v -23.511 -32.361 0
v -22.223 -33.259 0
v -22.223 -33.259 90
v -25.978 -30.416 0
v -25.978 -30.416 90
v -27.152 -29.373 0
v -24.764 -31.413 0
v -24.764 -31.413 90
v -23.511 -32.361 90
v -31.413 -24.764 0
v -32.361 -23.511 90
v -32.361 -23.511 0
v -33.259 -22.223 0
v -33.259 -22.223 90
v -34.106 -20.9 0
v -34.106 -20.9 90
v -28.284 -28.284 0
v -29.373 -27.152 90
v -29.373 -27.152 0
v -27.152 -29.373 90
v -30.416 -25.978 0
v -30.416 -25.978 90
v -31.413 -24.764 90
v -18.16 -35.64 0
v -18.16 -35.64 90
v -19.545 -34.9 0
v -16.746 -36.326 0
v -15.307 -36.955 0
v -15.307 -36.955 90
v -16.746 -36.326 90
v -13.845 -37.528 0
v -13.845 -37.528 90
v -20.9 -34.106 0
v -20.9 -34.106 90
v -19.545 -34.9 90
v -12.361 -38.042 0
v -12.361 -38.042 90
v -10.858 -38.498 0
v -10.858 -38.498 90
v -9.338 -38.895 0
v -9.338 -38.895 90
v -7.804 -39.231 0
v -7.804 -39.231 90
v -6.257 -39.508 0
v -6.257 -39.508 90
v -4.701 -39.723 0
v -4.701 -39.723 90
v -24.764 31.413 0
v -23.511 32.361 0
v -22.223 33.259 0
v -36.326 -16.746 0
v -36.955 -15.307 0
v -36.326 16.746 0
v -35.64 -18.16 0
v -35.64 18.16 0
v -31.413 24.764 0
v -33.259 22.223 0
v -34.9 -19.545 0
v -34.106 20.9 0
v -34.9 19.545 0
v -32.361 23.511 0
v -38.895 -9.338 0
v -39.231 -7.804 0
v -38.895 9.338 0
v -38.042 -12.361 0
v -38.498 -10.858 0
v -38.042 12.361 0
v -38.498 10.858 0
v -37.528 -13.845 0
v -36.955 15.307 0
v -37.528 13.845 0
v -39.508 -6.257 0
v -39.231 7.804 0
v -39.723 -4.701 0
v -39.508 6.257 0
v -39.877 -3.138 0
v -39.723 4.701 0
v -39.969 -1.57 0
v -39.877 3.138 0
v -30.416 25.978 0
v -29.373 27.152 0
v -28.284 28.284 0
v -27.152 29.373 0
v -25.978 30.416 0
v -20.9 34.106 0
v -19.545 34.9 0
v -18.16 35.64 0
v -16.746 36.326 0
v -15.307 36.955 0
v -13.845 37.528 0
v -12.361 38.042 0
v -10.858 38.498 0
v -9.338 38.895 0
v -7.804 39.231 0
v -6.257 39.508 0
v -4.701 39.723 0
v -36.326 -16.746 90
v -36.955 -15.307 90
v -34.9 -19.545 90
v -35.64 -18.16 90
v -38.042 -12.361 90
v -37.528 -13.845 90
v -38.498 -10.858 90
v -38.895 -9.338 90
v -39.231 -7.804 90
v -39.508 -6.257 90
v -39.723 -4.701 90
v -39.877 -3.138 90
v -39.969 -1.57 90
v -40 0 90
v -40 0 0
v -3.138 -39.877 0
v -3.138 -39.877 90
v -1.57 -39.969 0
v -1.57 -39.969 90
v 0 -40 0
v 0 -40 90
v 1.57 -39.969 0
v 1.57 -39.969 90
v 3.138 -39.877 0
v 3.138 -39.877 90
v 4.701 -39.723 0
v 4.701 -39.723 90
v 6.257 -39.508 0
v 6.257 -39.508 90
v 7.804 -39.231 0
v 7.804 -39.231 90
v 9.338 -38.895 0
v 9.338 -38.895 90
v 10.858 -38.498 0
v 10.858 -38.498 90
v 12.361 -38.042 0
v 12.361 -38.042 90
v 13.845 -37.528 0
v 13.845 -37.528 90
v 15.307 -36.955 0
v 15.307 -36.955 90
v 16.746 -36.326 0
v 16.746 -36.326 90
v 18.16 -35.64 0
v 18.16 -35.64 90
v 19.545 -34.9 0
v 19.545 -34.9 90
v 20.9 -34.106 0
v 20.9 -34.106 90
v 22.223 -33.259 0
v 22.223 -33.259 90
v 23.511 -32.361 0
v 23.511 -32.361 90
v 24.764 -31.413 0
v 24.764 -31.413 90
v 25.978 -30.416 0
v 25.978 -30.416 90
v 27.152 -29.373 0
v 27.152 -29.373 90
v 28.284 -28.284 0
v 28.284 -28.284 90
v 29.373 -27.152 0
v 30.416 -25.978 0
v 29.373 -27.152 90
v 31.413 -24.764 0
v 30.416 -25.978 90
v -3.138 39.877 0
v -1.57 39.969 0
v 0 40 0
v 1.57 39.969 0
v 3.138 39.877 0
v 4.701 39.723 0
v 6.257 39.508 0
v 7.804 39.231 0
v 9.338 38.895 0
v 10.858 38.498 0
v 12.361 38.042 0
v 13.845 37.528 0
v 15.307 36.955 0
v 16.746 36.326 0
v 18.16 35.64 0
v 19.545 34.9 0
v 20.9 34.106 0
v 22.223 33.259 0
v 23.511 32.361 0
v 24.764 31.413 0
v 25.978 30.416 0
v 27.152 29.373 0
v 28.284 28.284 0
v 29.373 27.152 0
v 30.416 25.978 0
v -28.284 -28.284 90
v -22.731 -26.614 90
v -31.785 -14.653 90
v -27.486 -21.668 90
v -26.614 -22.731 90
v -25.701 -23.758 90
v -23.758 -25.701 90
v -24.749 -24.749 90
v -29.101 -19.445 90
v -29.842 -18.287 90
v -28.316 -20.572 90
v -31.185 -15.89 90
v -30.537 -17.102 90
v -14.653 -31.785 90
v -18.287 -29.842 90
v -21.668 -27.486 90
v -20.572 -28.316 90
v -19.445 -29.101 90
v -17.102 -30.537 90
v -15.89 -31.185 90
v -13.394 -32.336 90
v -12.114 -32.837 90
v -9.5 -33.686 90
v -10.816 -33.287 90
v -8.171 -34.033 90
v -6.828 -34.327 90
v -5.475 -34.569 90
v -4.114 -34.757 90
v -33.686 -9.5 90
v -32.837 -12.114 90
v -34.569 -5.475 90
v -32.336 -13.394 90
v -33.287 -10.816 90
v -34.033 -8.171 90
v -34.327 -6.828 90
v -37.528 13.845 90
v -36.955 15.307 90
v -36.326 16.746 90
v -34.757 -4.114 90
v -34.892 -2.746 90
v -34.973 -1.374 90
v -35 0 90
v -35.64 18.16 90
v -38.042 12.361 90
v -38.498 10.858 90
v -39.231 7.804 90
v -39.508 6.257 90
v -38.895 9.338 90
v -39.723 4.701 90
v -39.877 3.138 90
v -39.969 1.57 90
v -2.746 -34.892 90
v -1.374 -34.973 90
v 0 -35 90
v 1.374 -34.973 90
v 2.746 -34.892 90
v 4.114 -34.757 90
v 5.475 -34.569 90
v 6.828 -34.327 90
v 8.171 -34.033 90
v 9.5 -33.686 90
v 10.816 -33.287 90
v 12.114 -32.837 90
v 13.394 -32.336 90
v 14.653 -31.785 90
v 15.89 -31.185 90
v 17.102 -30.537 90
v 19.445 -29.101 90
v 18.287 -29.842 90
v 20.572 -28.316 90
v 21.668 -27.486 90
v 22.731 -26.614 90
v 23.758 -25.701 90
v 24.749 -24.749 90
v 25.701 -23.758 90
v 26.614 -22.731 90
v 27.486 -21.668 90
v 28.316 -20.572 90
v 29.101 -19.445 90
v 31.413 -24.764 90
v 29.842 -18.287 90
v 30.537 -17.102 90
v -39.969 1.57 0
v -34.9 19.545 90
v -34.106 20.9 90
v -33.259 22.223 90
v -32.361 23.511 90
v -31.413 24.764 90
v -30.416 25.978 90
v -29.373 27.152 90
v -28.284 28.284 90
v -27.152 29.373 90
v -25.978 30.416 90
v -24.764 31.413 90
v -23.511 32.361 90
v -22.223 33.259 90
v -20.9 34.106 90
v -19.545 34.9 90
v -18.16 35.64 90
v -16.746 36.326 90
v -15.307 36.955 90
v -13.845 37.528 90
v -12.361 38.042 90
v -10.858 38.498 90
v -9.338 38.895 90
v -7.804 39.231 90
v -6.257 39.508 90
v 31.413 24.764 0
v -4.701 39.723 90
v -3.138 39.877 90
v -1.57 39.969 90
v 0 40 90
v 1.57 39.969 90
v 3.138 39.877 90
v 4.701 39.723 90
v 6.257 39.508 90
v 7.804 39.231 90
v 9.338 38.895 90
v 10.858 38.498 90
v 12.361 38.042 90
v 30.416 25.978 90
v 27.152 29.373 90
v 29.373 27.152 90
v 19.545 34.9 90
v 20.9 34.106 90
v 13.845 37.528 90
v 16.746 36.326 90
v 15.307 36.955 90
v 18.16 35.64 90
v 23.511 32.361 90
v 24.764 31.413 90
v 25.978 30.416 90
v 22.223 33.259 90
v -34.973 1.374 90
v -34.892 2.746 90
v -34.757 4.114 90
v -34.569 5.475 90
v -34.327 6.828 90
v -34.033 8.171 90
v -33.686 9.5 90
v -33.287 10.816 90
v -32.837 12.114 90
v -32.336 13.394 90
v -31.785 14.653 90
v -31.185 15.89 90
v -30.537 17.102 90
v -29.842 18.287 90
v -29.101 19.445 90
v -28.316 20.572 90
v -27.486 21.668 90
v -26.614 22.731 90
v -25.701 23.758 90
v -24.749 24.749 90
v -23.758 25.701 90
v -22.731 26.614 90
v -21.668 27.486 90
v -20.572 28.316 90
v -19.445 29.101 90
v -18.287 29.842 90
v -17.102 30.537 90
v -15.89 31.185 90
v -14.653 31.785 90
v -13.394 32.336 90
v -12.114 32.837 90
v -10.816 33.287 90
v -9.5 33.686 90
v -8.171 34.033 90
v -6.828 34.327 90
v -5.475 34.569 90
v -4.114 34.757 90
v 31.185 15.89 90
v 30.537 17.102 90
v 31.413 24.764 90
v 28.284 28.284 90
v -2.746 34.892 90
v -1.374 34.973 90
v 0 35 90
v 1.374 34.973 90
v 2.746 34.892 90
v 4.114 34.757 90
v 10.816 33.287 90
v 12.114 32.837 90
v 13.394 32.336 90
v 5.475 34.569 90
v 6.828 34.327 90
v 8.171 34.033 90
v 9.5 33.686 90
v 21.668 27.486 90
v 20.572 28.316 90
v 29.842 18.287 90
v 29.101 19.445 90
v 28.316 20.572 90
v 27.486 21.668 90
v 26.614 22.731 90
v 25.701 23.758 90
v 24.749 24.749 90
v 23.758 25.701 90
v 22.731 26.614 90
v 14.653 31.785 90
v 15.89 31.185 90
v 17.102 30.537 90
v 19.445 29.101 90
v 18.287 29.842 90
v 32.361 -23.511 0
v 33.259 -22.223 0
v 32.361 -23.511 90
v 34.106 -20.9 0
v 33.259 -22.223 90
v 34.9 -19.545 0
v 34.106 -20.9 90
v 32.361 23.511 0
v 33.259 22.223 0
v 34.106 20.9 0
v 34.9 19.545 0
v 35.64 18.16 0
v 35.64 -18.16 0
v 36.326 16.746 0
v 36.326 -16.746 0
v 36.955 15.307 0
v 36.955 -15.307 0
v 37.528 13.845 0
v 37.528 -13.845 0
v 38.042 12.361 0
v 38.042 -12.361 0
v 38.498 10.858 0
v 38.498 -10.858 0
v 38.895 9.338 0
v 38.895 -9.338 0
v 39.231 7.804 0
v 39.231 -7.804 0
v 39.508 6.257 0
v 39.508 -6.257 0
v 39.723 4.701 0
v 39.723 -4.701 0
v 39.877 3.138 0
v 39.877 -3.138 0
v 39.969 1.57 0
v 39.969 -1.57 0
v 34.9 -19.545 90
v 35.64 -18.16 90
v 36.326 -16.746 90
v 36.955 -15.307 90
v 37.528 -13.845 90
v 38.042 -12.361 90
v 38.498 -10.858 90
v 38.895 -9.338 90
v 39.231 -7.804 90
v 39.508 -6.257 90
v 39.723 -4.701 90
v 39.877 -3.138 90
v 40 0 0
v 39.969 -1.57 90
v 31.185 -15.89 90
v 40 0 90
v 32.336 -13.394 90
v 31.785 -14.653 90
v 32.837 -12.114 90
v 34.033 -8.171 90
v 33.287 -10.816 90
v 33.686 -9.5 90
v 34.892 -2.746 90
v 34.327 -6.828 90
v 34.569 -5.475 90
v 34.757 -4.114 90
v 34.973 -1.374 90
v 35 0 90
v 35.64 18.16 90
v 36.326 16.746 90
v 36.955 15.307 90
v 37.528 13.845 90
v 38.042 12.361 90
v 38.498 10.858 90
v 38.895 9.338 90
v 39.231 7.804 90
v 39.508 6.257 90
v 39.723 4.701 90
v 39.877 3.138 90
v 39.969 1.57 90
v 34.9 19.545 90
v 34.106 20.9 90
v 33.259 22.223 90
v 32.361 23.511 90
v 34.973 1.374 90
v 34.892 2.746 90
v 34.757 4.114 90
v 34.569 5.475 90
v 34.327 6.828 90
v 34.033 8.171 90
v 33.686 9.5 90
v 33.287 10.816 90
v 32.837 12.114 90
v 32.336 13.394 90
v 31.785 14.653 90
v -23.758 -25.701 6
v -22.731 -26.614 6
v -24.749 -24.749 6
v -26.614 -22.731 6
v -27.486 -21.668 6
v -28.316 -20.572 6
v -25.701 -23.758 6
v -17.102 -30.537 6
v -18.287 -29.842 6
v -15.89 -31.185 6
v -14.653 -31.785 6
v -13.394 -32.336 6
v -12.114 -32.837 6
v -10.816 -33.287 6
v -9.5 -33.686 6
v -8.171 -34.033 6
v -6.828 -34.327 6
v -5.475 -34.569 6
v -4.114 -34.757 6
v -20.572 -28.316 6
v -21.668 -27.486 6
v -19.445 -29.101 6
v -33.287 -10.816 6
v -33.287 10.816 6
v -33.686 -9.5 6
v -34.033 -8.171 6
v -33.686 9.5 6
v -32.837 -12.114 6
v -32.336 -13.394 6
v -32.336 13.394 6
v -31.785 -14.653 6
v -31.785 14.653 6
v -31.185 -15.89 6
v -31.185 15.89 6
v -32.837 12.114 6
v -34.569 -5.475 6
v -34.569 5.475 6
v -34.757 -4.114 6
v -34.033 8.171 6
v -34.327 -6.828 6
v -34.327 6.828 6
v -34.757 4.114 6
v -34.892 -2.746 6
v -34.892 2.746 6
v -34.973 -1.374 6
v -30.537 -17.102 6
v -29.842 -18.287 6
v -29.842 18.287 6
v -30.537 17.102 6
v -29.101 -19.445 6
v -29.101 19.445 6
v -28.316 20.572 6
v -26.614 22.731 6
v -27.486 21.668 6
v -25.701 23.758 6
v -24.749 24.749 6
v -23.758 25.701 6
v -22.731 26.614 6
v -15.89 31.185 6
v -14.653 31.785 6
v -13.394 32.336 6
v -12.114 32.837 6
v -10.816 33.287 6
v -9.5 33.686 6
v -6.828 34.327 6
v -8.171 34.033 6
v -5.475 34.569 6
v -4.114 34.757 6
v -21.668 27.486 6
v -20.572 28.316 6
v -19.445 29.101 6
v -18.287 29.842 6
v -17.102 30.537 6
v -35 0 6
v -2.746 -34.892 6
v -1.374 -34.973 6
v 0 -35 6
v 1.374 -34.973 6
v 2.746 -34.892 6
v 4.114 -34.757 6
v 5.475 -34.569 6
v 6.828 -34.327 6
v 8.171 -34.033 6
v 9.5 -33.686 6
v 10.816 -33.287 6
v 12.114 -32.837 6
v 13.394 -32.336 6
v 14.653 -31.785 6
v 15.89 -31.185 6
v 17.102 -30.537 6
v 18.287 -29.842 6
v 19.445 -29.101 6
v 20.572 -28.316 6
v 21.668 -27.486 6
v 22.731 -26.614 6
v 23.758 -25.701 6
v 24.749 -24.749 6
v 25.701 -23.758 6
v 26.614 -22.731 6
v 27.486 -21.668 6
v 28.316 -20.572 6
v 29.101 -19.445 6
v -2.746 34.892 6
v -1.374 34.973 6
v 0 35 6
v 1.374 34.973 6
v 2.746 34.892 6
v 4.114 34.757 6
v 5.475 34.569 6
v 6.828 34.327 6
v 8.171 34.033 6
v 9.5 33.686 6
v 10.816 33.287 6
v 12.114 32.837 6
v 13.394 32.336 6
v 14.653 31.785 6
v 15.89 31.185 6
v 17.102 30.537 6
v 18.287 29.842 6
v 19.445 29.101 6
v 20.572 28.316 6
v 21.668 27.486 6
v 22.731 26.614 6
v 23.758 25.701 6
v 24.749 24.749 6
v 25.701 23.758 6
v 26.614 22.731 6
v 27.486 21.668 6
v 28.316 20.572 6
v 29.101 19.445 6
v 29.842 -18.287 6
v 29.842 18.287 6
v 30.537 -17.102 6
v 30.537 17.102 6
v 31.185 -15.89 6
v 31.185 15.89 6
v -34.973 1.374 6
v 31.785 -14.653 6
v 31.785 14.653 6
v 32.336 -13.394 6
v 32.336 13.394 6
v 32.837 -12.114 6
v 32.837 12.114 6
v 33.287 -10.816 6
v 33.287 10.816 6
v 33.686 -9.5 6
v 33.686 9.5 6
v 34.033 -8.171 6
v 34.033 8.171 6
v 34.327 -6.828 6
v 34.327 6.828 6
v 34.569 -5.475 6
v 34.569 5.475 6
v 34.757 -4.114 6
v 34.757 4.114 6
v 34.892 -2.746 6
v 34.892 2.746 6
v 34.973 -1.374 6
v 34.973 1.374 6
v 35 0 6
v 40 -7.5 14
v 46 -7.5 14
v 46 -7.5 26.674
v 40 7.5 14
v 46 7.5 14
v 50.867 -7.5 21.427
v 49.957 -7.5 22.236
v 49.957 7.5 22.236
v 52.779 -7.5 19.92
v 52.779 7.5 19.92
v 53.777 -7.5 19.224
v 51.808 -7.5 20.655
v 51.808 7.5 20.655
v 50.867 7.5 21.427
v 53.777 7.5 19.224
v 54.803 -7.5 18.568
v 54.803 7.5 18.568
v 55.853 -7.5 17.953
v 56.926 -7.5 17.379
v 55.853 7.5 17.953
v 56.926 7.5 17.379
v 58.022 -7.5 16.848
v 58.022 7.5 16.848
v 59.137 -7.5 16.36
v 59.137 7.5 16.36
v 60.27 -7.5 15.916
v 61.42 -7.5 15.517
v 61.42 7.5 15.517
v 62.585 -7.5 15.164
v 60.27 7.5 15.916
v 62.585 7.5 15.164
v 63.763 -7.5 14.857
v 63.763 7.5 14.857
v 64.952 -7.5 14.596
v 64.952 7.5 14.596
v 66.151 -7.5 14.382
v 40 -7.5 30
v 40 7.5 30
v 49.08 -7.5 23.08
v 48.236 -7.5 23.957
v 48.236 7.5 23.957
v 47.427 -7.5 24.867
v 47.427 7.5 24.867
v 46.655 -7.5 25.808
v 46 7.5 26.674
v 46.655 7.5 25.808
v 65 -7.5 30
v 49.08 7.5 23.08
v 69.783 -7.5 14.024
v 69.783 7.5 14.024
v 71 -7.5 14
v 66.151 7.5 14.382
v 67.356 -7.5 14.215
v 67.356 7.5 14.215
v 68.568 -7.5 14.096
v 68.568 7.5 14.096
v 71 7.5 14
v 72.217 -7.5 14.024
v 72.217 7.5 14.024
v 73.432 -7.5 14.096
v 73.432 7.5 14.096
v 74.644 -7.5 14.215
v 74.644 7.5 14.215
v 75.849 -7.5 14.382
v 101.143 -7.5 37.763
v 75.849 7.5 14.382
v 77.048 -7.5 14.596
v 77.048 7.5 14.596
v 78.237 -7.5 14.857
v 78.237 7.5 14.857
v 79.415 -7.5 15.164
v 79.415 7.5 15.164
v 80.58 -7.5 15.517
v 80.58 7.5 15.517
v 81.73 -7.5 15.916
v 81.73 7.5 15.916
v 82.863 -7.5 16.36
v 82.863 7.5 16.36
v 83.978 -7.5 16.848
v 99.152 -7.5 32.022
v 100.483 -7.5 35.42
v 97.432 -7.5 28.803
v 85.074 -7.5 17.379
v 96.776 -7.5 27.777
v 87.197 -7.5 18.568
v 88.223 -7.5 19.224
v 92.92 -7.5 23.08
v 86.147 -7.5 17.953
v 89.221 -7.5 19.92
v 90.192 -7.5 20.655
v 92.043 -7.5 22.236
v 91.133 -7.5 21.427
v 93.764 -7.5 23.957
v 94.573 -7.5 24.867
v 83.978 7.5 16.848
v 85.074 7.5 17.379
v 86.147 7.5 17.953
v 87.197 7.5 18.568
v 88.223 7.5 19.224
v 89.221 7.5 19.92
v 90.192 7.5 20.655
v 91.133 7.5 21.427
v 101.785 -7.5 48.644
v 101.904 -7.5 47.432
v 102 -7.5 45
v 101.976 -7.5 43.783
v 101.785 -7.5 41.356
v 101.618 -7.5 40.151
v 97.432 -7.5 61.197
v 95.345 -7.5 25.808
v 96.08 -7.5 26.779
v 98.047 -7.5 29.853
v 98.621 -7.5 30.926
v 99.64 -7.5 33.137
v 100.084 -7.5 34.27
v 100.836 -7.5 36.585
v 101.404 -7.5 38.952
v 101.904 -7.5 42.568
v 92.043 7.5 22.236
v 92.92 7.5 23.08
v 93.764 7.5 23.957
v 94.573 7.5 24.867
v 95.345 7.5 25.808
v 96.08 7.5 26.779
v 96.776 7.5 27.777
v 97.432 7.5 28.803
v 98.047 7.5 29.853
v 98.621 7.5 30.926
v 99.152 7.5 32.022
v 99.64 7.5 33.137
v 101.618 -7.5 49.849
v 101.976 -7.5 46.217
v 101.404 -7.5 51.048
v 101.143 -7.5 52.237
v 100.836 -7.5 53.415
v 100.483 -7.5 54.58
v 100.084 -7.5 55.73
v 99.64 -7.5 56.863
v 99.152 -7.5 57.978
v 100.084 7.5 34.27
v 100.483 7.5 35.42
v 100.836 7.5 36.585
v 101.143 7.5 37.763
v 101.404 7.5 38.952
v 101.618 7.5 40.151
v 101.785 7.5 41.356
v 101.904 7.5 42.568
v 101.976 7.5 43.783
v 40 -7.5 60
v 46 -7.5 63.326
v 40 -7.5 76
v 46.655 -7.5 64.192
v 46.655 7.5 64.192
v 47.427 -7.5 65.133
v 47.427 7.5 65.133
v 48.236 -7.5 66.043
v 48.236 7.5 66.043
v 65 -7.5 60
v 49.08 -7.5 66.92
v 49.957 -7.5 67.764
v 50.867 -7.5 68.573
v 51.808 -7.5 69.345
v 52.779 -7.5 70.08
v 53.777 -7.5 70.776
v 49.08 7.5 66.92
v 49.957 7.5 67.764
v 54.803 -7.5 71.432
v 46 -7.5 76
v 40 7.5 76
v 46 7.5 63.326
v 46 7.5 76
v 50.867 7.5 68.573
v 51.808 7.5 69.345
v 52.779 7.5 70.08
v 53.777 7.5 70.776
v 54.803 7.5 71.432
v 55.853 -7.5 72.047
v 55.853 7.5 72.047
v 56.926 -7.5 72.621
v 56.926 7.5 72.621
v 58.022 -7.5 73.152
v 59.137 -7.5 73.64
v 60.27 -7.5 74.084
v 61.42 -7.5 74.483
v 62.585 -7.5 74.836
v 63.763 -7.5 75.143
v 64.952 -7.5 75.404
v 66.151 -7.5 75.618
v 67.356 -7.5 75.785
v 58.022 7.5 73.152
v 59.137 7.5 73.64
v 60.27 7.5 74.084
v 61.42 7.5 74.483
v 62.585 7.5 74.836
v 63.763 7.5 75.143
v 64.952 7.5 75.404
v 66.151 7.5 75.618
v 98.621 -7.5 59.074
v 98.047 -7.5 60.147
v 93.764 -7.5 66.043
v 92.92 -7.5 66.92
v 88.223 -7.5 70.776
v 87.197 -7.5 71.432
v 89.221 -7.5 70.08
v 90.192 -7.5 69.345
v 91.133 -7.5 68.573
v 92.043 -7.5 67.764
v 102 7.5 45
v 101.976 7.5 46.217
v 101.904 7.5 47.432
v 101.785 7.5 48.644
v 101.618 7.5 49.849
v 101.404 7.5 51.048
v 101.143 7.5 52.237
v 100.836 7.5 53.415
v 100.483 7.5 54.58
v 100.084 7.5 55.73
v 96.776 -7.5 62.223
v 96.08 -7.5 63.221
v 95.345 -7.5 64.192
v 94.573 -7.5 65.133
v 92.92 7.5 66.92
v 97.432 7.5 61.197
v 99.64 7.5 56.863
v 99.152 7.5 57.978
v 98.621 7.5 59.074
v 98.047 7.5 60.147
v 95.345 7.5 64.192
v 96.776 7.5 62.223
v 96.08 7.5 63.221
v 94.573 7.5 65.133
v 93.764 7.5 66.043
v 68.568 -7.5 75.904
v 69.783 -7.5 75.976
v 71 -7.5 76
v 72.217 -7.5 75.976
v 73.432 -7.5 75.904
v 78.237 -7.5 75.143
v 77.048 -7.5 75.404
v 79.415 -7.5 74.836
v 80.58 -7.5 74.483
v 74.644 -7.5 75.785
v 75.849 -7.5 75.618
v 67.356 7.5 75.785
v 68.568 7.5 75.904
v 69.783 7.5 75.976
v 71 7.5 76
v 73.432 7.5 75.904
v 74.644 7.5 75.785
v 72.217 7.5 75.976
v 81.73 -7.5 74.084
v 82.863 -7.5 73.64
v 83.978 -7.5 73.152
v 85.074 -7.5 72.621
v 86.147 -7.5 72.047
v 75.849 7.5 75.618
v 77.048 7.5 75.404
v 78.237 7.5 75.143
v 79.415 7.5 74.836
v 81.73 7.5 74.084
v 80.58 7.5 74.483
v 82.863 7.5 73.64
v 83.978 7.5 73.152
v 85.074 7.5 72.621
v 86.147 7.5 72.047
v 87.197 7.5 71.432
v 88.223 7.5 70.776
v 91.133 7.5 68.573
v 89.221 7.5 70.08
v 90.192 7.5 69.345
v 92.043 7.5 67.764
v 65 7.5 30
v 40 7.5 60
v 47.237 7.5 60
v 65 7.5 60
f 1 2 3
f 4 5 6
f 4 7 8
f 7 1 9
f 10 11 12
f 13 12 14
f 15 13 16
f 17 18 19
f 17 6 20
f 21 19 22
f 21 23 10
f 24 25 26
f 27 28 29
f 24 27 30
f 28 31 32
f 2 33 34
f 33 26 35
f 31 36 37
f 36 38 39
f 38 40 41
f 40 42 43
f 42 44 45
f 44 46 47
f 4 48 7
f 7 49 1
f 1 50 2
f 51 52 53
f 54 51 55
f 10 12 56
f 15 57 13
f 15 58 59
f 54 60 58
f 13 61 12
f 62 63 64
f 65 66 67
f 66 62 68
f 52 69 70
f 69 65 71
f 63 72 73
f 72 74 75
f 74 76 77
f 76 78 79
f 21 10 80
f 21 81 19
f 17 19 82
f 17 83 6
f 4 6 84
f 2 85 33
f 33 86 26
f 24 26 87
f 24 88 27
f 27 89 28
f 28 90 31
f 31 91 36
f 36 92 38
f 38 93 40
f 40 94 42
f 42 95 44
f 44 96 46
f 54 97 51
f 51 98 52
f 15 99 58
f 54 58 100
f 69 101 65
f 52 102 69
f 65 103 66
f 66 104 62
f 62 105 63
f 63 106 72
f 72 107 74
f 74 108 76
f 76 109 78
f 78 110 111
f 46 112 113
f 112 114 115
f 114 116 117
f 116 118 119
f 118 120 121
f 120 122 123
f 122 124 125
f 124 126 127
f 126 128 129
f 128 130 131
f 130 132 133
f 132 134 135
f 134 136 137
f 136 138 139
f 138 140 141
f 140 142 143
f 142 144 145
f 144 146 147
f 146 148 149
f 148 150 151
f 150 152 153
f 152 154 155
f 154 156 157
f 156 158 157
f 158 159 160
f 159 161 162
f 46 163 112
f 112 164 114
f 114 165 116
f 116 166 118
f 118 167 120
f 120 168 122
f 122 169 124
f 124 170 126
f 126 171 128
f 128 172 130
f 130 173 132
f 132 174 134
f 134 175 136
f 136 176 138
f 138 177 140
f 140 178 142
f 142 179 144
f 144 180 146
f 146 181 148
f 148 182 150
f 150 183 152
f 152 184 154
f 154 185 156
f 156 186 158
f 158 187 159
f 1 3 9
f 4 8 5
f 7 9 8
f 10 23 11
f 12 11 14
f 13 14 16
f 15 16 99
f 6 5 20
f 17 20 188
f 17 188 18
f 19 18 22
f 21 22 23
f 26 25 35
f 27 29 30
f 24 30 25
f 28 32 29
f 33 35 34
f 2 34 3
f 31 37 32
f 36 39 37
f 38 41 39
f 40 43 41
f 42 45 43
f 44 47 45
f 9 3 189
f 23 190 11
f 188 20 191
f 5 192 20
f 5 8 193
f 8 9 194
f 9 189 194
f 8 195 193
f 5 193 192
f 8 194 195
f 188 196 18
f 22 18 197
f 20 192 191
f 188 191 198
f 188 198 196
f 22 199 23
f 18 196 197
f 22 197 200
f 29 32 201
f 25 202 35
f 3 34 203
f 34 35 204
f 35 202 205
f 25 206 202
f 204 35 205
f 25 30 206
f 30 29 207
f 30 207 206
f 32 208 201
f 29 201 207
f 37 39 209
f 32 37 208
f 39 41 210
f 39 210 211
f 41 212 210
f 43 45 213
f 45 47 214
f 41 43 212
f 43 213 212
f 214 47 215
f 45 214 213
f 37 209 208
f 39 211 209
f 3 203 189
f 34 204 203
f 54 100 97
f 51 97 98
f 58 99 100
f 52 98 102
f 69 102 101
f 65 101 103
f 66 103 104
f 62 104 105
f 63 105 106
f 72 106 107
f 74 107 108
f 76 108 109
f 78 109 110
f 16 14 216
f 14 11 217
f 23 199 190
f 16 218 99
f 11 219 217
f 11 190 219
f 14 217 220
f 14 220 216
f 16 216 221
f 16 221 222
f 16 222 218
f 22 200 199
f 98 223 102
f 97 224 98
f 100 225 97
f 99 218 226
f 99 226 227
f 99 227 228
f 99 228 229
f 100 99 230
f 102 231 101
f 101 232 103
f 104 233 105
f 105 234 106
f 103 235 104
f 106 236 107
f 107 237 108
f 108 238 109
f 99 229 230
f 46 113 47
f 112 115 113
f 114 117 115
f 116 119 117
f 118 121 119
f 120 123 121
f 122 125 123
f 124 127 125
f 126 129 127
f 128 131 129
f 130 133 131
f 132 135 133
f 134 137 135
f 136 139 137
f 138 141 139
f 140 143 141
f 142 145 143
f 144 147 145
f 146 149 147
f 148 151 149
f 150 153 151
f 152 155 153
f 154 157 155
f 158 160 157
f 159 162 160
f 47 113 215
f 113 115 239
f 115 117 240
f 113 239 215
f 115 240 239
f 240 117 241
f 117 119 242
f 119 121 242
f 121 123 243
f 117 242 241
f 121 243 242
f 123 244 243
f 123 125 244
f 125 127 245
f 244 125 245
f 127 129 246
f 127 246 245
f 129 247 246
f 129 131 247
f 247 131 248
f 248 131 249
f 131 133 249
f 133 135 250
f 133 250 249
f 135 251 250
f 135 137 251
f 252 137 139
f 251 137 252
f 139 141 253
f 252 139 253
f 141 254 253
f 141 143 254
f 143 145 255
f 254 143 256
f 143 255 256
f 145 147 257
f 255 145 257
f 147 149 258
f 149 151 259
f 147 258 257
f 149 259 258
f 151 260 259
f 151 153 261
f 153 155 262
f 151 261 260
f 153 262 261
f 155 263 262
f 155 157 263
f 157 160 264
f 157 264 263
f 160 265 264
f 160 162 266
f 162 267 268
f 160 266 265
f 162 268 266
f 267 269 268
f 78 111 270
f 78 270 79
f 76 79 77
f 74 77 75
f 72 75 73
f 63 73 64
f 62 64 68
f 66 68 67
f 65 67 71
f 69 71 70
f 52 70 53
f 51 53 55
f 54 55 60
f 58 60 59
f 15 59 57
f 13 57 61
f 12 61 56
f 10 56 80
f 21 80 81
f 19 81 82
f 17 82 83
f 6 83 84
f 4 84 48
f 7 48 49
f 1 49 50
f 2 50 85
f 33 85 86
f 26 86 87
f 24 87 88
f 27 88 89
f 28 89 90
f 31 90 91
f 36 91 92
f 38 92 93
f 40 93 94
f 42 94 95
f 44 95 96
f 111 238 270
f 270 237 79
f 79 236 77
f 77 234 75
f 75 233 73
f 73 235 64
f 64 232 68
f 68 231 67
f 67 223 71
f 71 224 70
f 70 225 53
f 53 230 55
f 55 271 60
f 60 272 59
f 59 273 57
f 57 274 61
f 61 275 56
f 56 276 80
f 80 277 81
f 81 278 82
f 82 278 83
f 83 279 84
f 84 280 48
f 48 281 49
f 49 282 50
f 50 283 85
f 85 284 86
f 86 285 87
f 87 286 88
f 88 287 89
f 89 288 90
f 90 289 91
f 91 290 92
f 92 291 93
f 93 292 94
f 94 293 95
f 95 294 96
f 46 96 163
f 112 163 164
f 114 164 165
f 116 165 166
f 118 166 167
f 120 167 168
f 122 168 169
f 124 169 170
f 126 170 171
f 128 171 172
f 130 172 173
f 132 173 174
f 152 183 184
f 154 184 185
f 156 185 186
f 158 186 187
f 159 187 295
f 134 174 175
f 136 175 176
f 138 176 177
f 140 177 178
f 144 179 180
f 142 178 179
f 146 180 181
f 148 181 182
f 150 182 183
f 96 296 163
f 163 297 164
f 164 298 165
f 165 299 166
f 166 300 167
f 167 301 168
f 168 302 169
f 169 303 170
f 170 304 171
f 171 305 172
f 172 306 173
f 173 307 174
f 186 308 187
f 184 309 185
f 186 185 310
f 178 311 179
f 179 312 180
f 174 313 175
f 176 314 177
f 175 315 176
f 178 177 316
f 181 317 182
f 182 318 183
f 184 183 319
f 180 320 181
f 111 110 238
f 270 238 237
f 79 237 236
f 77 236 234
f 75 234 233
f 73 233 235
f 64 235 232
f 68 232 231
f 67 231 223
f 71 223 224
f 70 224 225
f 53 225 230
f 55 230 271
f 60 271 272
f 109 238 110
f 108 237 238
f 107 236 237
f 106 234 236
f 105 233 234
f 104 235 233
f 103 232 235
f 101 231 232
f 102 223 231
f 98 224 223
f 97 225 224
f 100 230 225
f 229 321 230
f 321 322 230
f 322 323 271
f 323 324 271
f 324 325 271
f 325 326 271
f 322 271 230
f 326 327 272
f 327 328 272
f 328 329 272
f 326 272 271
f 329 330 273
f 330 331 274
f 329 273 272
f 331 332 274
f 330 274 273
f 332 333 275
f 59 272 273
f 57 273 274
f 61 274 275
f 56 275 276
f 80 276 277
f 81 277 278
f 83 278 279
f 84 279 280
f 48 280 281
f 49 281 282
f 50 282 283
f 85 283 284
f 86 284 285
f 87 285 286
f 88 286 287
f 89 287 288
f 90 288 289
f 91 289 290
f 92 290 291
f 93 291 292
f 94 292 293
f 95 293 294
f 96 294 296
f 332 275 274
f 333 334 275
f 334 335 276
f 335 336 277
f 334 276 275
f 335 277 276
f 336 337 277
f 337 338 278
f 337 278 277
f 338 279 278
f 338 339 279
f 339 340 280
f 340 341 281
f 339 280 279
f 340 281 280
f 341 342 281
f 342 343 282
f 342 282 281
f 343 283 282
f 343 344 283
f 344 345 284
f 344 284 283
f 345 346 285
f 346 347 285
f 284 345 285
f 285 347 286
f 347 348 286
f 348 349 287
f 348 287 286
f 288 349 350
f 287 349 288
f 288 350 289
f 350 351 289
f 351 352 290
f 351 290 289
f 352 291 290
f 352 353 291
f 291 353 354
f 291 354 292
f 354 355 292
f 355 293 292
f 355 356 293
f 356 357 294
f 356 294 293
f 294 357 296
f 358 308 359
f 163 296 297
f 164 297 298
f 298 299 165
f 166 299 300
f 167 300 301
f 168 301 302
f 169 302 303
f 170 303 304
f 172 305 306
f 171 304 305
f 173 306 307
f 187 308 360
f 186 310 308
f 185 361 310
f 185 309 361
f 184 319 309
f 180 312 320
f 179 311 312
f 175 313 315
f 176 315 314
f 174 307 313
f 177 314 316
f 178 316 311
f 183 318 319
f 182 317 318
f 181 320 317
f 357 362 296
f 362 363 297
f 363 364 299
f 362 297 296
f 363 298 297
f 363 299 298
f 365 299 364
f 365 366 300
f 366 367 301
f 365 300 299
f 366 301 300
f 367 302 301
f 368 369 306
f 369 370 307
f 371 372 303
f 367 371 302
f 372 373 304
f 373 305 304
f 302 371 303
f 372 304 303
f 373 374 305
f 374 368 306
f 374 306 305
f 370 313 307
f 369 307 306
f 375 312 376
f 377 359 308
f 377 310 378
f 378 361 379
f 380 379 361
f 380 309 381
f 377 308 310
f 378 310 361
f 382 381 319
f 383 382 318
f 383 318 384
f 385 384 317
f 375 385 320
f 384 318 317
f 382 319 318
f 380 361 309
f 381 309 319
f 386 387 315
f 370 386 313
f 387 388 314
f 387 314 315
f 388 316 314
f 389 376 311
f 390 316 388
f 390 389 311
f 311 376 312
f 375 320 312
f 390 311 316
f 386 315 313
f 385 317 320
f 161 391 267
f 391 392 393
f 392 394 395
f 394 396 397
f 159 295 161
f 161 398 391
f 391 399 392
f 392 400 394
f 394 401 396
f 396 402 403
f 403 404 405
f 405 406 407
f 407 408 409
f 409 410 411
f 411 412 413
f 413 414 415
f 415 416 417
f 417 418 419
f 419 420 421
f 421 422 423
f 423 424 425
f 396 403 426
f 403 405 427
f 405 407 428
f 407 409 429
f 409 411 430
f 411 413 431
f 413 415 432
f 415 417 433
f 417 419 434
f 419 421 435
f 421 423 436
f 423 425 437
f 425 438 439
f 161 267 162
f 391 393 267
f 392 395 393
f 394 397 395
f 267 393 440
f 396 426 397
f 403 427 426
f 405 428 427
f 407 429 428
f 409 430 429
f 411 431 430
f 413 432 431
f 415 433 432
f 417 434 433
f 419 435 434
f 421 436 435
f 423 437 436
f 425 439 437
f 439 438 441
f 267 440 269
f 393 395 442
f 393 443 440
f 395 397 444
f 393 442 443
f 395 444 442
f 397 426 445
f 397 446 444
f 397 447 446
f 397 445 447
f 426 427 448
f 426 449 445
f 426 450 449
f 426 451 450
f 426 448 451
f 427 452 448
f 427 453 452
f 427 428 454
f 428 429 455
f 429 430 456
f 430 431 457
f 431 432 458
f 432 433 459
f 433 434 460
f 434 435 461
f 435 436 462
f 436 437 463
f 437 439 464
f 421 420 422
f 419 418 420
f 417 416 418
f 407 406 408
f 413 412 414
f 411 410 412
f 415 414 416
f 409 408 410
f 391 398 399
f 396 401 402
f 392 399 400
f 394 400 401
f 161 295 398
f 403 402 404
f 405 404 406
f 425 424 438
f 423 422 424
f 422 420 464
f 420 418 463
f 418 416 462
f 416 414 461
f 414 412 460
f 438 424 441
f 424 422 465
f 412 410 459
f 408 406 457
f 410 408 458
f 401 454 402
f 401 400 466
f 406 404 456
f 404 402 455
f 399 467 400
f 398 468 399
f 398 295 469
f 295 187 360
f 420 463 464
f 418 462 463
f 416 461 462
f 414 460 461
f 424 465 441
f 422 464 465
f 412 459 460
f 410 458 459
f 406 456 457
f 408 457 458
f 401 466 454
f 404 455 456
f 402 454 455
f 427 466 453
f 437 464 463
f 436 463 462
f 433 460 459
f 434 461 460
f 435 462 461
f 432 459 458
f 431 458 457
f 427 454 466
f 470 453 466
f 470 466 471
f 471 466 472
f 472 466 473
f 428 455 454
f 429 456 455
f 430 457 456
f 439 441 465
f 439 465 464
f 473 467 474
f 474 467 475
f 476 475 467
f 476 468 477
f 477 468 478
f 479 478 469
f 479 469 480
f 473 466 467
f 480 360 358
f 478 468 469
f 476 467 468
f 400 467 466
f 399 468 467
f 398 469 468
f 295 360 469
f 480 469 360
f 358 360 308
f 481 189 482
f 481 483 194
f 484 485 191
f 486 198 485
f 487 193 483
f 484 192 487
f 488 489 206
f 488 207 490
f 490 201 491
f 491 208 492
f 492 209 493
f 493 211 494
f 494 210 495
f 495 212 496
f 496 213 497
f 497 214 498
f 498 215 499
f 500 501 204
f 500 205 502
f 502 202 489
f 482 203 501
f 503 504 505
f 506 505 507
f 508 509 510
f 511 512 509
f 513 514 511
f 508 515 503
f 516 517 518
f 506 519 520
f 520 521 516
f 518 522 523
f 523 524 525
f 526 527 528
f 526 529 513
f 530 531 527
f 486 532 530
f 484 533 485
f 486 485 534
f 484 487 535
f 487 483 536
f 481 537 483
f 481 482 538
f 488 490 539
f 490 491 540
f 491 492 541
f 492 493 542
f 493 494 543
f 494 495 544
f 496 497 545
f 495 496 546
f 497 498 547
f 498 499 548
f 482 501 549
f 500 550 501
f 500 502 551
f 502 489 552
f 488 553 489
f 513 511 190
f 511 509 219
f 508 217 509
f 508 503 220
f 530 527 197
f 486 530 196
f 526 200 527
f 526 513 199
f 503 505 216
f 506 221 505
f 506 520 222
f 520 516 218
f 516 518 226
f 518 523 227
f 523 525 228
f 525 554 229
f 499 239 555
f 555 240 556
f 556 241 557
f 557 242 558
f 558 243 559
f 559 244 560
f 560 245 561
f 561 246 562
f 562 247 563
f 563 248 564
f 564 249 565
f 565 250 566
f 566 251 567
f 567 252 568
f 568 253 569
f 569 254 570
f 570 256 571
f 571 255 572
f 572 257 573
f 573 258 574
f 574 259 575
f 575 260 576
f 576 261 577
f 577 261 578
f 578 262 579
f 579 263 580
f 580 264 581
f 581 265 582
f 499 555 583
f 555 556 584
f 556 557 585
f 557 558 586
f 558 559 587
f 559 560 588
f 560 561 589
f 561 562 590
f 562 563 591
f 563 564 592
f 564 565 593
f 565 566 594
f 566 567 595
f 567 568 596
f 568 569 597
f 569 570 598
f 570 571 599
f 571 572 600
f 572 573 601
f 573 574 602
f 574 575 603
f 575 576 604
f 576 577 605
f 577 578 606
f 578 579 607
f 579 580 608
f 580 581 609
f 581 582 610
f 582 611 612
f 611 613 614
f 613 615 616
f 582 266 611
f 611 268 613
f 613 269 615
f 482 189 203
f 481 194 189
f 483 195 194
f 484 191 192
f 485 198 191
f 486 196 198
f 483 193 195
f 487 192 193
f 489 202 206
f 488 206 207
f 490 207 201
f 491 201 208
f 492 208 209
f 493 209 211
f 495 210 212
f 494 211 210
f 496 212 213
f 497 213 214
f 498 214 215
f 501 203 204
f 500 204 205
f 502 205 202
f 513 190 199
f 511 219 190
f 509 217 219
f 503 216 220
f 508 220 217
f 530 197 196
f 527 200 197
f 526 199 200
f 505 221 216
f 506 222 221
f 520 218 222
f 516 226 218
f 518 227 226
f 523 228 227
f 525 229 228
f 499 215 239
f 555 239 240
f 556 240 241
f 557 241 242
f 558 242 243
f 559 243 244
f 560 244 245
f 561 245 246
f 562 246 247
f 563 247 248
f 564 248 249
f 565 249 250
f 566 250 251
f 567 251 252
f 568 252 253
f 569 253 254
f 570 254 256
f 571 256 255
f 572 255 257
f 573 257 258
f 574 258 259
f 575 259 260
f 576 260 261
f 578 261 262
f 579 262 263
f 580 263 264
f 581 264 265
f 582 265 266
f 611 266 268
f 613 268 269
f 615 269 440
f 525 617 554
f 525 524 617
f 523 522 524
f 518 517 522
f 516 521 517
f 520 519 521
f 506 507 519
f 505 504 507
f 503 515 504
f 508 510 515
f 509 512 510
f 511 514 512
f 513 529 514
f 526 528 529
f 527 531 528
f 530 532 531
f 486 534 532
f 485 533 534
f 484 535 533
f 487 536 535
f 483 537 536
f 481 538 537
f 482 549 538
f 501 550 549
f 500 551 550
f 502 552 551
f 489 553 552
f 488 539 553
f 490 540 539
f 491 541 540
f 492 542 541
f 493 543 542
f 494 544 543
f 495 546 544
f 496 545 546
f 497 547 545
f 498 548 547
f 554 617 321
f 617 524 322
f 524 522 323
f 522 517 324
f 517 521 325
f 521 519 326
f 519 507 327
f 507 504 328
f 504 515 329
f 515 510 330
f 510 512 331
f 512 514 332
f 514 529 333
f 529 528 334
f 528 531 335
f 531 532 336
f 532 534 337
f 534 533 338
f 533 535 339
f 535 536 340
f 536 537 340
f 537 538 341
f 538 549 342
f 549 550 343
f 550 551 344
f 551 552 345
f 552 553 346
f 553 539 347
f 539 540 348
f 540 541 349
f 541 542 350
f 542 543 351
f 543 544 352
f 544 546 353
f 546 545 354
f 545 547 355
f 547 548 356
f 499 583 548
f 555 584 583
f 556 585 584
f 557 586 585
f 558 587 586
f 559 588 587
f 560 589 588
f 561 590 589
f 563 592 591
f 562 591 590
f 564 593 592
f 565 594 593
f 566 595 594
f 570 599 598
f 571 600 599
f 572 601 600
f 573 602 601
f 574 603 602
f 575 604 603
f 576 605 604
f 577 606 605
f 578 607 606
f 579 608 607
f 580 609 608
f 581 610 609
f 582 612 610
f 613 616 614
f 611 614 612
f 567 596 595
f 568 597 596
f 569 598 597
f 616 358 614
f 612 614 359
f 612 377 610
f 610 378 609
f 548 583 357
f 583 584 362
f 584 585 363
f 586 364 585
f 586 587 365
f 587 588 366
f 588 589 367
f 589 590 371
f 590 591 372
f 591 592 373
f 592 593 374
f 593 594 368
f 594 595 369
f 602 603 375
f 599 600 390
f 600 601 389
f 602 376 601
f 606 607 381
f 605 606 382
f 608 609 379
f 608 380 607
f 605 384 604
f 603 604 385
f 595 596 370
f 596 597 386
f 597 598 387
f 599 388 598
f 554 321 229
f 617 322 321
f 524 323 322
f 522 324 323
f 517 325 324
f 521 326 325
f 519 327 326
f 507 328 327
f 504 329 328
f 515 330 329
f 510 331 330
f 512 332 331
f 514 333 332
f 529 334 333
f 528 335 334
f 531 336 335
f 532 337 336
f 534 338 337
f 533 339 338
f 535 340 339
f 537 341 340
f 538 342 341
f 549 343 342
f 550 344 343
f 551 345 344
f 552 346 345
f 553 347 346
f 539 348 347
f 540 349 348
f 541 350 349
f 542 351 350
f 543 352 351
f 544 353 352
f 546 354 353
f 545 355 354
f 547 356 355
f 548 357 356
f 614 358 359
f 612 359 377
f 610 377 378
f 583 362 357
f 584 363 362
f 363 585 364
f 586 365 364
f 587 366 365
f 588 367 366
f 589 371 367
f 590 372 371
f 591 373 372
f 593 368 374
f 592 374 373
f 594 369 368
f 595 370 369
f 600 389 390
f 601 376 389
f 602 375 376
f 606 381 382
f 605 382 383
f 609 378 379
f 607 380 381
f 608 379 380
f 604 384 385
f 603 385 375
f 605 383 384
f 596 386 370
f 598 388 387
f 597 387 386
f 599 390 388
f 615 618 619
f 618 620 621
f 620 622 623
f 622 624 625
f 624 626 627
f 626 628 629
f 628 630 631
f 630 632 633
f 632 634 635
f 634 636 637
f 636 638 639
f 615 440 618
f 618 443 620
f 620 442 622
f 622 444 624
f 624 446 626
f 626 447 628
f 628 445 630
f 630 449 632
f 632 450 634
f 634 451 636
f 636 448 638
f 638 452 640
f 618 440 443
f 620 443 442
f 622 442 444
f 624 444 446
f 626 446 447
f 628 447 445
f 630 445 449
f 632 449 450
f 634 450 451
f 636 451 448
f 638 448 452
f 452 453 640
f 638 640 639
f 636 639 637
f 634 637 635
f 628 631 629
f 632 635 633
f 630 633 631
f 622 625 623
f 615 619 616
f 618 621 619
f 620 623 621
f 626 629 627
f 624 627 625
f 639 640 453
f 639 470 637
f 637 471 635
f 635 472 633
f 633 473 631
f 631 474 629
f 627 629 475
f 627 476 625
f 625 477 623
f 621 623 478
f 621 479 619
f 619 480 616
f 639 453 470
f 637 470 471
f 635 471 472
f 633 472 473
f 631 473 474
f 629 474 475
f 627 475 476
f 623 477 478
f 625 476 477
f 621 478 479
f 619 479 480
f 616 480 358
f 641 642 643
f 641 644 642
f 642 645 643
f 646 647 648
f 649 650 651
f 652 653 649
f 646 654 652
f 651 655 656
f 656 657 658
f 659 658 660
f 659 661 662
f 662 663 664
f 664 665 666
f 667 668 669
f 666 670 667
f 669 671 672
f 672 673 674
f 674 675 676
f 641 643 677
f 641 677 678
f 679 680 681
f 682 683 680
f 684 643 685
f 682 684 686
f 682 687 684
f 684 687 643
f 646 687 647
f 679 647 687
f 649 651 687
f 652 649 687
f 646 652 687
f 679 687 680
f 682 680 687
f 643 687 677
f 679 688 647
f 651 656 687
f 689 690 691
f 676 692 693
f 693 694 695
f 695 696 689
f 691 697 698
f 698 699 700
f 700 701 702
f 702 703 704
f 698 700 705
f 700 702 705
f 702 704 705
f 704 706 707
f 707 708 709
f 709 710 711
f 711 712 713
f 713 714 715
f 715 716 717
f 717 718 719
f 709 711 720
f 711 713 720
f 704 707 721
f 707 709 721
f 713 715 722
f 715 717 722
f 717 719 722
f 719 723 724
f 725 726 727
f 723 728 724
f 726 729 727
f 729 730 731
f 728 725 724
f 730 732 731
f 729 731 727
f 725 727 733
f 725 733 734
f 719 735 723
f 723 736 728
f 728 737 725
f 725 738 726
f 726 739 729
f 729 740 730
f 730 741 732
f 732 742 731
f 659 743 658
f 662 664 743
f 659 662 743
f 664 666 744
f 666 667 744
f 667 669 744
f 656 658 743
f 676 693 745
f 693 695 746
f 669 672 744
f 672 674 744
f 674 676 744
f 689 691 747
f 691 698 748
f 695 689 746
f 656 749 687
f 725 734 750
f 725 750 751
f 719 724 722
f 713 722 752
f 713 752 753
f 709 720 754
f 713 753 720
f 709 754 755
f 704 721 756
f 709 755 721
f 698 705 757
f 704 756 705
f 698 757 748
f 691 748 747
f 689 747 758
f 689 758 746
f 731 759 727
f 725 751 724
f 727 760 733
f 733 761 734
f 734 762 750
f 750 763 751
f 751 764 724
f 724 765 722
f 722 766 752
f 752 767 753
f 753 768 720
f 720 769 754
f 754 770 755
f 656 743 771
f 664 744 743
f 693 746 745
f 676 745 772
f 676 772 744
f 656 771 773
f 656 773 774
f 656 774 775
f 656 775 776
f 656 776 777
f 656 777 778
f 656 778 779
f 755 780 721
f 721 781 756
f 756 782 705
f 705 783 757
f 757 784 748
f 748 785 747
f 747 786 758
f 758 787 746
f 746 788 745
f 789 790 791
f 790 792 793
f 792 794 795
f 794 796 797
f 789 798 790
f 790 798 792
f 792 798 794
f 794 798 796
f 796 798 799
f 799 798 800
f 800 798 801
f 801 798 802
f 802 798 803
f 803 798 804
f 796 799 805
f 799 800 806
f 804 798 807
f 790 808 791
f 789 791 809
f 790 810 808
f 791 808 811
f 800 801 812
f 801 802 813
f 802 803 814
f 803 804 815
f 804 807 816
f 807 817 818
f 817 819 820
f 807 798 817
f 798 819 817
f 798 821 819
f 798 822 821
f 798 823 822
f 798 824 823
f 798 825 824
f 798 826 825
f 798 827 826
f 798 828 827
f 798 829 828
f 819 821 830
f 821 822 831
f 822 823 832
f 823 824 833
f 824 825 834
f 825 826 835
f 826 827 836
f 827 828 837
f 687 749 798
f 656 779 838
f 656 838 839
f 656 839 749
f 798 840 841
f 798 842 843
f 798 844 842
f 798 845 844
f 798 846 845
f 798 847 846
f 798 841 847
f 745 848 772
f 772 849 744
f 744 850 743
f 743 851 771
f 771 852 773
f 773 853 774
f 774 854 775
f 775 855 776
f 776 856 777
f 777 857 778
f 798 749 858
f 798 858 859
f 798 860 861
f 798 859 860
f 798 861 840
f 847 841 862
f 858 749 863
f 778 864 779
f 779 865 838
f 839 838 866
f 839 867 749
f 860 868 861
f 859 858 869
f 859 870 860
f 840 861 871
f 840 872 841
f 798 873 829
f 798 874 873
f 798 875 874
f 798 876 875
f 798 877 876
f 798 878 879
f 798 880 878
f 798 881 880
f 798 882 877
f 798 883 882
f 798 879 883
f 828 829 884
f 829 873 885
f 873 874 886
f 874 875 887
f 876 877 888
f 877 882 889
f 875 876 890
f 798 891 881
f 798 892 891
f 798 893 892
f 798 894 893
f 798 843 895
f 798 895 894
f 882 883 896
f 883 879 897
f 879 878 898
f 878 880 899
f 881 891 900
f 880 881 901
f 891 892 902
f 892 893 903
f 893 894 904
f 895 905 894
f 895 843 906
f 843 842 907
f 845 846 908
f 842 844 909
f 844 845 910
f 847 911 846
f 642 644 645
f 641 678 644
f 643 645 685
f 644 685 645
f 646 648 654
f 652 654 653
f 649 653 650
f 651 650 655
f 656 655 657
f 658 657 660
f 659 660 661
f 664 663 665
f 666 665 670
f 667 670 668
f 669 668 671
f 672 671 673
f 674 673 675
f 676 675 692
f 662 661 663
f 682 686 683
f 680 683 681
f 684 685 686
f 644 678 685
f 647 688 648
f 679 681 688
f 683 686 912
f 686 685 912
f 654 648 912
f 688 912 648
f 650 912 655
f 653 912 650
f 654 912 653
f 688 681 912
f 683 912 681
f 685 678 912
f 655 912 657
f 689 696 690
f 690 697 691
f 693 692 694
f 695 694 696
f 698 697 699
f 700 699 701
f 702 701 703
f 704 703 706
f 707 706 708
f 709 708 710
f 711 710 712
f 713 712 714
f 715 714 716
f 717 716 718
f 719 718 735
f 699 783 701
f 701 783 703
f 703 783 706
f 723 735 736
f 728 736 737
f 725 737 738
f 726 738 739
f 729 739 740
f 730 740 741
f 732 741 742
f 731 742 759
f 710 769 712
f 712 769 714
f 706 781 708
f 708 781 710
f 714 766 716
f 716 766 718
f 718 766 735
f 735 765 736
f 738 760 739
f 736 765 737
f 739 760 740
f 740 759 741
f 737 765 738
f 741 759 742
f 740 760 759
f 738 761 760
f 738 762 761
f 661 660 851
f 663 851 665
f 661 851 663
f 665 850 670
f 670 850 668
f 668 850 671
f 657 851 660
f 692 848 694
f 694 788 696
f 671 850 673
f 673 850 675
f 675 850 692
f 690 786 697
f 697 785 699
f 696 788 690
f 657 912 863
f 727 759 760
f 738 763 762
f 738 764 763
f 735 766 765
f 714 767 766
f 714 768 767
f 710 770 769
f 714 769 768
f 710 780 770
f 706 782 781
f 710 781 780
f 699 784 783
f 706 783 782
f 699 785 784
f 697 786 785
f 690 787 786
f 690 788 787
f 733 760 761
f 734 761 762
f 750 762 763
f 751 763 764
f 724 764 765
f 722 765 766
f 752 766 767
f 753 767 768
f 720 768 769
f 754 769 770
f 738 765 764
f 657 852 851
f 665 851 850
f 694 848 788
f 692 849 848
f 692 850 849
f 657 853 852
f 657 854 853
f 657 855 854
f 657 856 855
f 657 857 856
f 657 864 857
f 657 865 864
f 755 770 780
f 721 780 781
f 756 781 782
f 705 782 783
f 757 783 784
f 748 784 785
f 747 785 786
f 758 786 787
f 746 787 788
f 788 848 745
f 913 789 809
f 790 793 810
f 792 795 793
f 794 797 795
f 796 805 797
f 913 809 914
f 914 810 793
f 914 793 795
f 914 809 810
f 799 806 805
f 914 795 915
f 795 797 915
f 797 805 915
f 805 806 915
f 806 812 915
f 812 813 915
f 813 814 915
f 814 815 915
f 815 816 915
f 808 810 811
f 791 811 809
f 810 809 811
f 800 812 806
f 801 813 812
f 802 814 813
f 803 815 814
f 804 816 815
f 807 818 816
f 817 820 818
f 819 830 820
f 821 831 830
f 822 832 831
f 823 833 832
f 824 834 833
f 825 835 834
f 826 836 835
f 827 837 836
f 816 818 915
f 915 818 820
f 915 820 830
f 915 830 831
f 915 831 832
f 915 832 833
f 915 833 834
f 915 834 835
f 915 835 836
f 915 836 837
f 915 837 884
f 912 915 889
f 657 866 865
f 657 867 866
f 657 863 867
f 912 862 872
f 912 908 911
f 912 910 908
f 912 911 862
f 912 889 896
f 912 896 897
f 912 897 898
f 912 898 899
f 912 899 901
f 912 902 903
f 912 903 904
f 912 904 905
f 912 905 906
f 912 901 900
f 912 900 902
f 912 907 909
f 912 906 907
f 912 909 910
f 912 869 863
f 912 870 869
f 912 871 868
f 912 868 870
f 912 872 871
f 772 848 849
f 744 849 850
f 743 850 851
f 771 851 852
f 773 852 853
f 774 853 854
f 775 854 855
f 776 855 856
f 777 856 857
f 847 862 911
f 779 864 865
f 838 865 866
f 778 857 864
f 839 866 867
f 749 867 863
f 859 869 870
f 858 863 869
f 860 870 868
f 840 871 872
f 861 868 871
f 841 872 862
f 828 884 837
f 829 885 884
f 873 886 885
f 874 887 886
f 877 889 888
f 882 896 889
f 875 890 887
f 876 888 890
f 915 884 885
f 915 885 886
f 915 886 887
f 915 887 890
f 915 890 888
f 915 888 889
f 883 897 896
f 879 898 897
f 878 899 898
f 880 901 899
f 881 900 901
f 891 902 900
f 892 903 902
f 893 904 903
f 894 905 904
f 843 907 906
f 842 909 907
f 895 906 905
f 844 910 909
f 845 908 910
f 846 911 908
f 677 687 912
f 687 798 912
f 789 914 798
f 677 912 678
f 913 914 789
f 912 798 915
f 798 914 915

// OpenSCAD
$fn = 160;

outer_radius = 40;
inner_radius = 35;
mug_height = 90;
bottom_thickness = 6;

inner_gap_width = 25;
inner_gap_height = 30;
handle_wall_thickness = 6;
handle_circle_radius = inner_gap_width + handle_wall_thickness;
handle_depth = 15;

module mug_body() {
    difference() {
        cylinder(r = outer_radius, h = mug_height);
        translate([0, 0, bottom_thickness])
            cylinder(r = inner_radius, h = mug_height - bottom_thickness);
    }
}

module handle_profile() {
    union() {
        translate([outer_radius, -handle_circle_radius])
            square([handle_wall_thickness, handle_circle_radius * 2], center = false);
        difference() {
            translate([outer_radius + handle_circle_radius, 0])
                circle(r = handle_circle_radius);
            translate([-1000, -handle_circle_radius - 2])
                square([outer_radius + 1000, handle_circle_radius * 2 + 4], center = false);
        }
    }
}

module handle_shape_raw() {
    difference() {
        linear_extrude(height = handle_depth, center = true)
            handle_profile();
        translate(
            [
                outer_radius + inner_gap_width / 2,
                0,
                0
            ]
        )
            cube(
                [
                    inner_gap_width,
                    inner_gap_height,
                    handle_depth + 4
                ],
                center = true
            );
    }
}

module handle_body() {
    translate([0, 0, mug_height / 2])
        mirror([0, 1, 0])
            rotate([90, 0, 0])
                handle_shape_raw();
}

union() {
    mug_body();
    handle_body();
}
